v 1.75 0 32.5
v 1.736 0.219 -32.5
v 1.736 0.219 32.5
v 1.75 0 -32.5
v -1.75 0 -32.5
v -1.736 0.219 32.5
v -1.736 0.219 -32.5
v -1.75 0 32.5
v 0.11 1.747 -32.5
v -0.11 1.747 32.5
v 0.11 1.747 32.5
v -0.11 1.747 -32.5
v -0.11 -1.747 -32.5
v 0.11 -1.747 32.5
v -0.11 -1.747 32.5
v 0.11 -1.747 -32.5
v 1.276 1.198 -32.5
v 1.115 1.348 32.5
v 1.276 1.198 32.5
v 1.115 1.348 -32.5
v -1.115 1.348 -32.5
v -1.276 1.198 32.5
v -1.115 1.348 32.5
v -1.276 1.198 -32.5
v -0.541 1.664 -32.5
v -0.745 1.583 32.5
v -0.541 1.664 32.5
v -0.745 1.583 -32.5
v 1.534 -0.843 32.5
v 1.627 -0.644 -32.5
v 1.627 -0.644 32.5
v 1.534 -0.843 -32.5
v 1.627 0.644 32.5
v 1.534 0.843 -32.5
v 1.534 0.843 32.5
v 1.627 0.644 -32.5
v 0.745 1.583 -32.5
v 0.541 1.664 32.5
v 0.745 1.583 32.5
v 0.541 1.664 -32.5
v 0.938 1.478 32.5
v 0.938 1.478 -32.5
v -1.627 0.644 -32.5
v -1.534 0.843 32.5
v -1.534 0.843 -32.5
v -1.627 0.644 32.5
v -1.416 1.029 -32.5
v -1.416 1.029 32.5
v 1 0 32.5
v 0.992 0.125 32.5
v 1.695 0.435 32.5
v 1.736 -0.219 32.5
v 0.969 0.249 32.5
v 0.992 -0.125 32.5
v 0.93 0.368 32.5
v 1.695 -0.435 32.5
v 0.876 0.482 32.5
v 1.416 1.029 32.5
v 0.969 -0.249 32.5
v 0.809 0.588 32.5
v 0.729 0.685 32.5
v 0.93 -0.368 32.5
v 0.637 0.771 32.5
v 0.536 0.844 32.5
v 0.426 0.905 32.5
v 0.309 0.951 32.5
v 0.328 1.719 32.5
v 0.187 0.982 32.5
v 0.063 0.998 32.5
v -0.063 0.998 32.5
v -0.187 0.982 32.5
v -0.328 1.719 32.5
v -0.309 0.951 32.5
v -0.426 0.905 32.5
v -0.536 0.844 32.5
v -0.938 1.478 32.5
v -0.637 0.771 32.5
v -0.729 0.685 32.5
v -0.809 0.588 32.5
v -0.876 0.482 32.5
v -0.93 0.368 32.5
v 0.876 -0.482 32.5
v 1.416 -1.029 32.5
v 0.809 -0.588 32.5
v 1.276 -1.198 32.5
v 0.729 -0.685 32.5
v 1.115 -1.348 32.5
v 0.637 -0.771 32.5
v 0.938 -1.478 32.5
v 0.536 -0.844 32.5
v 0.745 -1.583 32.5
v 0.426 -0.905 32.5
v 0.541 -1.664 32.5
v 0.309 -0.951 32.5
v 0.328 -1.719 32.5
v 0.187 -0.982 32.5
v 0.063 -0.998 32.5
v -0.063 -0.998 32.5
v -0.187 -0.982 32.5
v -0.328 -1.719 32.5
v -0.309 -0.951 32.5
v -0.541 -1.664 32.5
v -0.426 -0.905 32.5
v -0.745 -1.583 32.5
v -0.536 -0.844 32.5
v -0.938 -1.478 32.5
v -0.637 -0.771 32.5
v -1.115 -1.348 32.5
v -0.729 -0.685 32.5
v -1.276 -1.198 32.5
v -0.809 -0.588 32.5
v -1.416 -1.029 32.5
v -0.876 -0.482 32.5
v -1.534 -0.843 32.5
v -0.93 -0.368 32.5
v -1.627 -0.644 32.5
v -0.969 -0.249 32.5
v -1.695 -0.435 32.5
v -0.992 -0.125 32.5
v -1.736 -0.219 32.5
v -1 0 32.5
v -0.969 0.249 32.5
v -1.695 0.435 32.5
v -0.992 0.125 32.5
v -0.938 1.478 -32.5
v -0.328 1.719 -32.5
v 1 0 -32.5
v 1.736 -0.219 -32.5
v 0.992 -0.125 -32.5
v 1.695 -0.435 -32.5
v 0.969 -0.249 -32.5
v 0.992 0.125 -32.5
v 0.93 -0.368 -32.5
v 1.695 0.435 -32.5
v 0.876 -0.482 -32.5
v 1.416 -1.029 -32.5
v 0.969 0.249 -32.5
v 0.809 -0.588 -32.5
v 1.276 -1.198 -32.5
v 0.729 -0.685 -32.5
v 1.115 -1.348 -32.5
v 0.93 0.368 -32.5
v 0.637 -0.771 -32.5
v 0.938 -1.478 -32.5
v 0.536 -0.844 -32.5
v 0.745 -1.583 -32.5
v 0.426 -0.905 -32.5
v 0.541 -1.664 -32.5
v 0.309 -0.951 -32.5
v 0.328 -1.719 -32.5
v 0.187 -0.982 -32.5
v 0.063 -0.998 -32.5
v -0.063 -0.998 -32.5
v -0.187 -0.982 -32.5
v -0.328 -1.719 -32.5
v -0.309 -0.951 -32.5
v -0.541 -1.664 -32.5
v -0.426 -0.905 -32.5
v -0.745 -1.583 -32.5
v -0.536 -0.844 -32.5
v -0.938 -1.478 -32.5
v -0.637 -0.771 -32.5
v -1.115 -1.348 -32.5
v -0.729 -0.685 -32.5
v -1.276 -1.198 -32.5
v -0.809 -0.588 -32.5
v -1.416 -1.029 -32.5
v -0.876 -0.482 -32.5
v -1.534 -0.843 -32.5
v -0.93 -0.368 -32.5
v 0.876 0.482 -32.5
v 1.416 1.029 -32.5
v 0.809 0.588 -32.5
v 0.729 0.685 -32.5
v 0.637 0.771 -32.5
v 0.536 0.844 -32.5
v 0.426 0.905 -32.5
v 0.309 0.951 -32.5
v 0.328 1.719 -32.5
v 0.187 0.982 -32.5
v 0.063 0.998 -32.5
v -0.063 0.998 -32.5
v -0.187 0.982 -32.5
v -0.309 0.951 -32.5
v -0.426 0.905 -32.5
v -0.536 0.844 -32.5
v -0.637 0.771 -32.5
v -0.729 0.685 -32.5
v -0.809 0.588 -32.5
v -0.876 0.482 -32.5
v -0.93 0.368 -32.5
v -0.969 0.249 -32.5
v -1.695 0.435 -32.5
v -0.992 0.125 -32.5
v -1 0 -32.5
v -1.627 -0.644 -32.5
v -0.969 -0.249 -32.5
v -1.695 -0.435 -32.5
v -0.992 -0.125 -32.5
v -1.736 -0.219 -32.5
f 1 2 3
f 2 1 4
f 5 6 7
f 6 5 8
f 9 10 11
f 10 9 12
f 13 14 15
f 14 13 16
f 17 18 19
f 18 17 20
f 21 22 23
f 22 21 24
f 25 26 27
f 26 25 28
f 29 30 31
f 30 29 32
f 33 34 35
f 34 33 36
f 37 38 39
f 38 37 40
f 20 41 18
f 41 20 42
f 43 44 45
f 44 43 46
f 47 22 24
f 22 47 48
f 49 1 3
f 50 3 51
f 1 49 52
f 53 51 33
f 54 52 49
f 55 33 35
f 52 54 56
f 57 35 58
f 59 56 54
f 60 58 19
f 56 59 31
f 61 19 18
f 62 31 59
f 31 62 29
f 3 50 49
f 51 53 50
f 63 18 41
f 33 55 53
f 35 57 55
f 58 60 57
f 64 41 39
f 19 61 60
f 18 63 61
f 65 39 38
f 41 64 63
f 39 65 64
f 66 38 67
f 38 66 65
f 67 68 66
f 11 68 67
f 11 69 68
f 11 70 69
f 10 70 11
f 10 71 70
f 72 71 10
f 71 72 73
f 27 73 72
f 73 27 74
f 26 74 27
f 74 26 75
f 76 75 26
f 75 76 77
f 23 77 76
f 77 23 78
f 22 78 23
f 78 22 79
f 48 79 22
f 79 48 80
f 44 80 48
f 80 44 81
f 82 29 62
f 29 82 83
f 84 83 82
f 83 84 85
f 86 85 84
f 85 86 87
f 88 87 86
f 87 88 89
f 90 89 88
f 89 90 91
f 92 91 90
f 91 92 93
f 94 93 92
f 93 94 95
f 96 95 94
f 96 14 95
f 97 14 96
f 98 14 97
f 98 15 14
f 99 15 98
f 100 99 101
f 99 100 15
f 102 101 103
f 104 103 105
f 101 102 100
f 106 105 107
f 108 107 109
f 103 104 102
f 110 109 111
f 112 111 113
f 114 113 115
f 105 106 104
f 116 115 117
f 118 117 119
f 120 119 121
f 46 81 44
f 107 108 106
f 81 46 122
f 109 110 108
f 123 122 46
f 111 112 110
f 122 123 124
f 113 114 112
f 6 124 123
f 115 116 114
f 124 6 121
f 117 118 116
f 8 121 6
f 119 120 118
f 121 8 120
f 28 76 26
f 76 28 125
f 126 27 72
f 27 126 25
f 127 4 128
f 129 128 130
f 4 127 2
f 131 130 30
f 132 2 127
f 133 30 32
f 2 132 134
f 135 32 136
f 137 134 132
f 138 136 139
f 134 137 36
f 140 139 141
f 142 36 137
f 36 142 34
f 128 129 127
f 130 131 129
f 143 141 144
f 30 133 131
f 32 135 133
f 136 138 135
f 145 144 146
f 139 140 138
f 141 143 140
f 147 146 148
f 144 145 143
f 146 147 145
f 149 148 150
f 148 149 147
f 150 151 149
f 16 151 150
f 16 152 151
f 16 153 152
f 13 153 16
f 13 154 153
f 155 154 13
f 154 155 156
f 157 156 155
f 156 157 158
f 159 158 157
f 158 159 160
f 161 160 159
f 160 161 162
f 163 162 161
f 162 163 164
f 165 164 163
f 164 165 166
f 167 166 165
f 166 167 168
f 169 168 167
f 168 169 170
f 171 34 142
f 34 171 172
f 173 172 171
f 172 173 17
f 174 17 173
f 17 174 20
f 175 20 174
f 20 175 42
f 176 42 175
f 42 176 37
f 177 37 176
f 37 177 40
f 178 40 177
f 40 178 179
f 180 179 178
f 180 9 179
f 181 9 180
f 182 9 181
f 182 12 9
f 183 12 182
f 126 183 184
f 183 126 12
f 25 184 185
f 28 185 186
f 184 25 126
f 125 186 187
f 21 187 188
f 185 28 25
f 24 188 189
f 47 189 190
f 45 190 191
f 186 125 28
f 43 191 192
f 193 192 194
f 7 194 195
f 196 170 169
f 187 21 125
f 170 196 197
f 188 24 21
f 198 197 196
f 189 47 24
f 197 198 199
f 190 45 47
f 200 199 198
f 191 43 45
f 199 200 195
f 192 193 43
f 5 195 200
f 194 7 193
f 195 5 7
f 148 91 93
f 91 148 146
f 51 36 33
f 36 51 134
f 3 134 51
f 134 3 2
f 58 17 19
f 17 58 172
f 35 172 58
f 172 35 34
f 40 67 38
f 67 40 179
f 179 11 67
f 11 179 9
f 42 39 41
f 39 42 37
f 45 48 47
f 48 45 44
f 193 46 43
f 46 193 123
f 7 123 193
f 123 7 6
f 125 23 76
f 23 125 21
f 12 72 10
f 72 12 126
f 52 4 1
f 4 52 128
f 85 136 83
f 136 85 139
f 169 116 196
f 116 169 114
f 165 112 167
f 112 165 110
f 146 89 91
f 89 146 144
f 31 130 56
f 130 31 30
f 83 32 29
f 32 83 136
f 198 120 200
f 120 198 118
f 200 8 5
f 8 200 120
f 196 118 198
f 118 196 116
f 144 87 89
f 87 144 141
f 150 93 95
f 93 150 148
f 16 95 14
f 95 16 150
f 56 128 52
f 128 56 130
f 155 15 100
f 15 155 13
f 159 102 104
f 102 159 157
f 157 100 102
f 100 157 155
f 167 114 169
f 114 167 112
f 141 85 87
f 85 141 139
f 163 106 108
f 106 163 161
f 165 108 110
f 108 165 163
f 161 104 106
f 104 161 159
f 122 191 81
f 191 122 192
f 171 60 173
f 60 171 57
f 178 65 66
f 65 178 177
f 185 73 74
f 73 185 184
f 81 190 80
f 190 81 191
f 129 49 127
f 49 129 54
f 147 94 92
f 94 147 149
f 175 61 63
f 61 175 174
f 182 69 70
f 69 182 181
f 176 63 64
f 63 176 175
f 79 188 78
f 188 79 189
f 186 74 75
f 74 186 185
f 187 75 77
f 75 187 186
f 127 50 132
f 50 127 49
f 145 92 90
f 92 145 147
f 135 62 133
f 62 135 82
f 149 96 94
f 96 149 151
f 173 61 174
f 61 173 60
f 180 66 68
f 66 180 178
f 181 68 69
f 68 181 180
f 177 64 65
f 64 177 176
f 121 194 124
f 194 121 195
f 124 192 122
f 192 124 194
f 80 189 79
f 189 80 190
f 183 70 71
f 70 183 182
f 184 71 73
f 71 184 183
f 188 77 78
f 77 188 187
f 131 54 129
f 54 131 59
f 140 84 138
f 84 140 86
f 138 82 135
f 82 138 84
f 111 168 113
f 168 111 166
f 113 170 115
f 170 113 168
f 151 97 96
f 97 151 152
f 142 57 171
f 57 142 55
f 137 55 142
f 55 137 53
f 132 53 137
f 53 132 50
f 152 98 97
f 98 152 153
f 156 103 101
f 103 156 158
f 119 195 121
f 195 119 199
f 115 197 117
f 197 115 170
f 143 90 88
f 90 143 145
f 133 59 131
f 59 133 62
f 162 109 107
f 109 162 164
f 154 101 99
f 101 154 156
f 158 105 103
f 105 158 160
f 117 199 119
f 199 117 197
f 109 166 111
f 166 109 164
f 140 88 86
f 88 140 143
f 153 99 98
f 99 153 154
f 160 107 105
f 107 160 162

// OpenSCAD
$fn = 50;


difference() {
	union() {
		translate(v = [0, 0, -32.5000000000]) {
			cylinder(h = 65, r = 1.7500000000);
		}
	}
	union() {
		translate(v = [0, 0, -100.0000000000]) {
			cylinder(h = 200, r = 1.0000000000);
		}
	}
}
